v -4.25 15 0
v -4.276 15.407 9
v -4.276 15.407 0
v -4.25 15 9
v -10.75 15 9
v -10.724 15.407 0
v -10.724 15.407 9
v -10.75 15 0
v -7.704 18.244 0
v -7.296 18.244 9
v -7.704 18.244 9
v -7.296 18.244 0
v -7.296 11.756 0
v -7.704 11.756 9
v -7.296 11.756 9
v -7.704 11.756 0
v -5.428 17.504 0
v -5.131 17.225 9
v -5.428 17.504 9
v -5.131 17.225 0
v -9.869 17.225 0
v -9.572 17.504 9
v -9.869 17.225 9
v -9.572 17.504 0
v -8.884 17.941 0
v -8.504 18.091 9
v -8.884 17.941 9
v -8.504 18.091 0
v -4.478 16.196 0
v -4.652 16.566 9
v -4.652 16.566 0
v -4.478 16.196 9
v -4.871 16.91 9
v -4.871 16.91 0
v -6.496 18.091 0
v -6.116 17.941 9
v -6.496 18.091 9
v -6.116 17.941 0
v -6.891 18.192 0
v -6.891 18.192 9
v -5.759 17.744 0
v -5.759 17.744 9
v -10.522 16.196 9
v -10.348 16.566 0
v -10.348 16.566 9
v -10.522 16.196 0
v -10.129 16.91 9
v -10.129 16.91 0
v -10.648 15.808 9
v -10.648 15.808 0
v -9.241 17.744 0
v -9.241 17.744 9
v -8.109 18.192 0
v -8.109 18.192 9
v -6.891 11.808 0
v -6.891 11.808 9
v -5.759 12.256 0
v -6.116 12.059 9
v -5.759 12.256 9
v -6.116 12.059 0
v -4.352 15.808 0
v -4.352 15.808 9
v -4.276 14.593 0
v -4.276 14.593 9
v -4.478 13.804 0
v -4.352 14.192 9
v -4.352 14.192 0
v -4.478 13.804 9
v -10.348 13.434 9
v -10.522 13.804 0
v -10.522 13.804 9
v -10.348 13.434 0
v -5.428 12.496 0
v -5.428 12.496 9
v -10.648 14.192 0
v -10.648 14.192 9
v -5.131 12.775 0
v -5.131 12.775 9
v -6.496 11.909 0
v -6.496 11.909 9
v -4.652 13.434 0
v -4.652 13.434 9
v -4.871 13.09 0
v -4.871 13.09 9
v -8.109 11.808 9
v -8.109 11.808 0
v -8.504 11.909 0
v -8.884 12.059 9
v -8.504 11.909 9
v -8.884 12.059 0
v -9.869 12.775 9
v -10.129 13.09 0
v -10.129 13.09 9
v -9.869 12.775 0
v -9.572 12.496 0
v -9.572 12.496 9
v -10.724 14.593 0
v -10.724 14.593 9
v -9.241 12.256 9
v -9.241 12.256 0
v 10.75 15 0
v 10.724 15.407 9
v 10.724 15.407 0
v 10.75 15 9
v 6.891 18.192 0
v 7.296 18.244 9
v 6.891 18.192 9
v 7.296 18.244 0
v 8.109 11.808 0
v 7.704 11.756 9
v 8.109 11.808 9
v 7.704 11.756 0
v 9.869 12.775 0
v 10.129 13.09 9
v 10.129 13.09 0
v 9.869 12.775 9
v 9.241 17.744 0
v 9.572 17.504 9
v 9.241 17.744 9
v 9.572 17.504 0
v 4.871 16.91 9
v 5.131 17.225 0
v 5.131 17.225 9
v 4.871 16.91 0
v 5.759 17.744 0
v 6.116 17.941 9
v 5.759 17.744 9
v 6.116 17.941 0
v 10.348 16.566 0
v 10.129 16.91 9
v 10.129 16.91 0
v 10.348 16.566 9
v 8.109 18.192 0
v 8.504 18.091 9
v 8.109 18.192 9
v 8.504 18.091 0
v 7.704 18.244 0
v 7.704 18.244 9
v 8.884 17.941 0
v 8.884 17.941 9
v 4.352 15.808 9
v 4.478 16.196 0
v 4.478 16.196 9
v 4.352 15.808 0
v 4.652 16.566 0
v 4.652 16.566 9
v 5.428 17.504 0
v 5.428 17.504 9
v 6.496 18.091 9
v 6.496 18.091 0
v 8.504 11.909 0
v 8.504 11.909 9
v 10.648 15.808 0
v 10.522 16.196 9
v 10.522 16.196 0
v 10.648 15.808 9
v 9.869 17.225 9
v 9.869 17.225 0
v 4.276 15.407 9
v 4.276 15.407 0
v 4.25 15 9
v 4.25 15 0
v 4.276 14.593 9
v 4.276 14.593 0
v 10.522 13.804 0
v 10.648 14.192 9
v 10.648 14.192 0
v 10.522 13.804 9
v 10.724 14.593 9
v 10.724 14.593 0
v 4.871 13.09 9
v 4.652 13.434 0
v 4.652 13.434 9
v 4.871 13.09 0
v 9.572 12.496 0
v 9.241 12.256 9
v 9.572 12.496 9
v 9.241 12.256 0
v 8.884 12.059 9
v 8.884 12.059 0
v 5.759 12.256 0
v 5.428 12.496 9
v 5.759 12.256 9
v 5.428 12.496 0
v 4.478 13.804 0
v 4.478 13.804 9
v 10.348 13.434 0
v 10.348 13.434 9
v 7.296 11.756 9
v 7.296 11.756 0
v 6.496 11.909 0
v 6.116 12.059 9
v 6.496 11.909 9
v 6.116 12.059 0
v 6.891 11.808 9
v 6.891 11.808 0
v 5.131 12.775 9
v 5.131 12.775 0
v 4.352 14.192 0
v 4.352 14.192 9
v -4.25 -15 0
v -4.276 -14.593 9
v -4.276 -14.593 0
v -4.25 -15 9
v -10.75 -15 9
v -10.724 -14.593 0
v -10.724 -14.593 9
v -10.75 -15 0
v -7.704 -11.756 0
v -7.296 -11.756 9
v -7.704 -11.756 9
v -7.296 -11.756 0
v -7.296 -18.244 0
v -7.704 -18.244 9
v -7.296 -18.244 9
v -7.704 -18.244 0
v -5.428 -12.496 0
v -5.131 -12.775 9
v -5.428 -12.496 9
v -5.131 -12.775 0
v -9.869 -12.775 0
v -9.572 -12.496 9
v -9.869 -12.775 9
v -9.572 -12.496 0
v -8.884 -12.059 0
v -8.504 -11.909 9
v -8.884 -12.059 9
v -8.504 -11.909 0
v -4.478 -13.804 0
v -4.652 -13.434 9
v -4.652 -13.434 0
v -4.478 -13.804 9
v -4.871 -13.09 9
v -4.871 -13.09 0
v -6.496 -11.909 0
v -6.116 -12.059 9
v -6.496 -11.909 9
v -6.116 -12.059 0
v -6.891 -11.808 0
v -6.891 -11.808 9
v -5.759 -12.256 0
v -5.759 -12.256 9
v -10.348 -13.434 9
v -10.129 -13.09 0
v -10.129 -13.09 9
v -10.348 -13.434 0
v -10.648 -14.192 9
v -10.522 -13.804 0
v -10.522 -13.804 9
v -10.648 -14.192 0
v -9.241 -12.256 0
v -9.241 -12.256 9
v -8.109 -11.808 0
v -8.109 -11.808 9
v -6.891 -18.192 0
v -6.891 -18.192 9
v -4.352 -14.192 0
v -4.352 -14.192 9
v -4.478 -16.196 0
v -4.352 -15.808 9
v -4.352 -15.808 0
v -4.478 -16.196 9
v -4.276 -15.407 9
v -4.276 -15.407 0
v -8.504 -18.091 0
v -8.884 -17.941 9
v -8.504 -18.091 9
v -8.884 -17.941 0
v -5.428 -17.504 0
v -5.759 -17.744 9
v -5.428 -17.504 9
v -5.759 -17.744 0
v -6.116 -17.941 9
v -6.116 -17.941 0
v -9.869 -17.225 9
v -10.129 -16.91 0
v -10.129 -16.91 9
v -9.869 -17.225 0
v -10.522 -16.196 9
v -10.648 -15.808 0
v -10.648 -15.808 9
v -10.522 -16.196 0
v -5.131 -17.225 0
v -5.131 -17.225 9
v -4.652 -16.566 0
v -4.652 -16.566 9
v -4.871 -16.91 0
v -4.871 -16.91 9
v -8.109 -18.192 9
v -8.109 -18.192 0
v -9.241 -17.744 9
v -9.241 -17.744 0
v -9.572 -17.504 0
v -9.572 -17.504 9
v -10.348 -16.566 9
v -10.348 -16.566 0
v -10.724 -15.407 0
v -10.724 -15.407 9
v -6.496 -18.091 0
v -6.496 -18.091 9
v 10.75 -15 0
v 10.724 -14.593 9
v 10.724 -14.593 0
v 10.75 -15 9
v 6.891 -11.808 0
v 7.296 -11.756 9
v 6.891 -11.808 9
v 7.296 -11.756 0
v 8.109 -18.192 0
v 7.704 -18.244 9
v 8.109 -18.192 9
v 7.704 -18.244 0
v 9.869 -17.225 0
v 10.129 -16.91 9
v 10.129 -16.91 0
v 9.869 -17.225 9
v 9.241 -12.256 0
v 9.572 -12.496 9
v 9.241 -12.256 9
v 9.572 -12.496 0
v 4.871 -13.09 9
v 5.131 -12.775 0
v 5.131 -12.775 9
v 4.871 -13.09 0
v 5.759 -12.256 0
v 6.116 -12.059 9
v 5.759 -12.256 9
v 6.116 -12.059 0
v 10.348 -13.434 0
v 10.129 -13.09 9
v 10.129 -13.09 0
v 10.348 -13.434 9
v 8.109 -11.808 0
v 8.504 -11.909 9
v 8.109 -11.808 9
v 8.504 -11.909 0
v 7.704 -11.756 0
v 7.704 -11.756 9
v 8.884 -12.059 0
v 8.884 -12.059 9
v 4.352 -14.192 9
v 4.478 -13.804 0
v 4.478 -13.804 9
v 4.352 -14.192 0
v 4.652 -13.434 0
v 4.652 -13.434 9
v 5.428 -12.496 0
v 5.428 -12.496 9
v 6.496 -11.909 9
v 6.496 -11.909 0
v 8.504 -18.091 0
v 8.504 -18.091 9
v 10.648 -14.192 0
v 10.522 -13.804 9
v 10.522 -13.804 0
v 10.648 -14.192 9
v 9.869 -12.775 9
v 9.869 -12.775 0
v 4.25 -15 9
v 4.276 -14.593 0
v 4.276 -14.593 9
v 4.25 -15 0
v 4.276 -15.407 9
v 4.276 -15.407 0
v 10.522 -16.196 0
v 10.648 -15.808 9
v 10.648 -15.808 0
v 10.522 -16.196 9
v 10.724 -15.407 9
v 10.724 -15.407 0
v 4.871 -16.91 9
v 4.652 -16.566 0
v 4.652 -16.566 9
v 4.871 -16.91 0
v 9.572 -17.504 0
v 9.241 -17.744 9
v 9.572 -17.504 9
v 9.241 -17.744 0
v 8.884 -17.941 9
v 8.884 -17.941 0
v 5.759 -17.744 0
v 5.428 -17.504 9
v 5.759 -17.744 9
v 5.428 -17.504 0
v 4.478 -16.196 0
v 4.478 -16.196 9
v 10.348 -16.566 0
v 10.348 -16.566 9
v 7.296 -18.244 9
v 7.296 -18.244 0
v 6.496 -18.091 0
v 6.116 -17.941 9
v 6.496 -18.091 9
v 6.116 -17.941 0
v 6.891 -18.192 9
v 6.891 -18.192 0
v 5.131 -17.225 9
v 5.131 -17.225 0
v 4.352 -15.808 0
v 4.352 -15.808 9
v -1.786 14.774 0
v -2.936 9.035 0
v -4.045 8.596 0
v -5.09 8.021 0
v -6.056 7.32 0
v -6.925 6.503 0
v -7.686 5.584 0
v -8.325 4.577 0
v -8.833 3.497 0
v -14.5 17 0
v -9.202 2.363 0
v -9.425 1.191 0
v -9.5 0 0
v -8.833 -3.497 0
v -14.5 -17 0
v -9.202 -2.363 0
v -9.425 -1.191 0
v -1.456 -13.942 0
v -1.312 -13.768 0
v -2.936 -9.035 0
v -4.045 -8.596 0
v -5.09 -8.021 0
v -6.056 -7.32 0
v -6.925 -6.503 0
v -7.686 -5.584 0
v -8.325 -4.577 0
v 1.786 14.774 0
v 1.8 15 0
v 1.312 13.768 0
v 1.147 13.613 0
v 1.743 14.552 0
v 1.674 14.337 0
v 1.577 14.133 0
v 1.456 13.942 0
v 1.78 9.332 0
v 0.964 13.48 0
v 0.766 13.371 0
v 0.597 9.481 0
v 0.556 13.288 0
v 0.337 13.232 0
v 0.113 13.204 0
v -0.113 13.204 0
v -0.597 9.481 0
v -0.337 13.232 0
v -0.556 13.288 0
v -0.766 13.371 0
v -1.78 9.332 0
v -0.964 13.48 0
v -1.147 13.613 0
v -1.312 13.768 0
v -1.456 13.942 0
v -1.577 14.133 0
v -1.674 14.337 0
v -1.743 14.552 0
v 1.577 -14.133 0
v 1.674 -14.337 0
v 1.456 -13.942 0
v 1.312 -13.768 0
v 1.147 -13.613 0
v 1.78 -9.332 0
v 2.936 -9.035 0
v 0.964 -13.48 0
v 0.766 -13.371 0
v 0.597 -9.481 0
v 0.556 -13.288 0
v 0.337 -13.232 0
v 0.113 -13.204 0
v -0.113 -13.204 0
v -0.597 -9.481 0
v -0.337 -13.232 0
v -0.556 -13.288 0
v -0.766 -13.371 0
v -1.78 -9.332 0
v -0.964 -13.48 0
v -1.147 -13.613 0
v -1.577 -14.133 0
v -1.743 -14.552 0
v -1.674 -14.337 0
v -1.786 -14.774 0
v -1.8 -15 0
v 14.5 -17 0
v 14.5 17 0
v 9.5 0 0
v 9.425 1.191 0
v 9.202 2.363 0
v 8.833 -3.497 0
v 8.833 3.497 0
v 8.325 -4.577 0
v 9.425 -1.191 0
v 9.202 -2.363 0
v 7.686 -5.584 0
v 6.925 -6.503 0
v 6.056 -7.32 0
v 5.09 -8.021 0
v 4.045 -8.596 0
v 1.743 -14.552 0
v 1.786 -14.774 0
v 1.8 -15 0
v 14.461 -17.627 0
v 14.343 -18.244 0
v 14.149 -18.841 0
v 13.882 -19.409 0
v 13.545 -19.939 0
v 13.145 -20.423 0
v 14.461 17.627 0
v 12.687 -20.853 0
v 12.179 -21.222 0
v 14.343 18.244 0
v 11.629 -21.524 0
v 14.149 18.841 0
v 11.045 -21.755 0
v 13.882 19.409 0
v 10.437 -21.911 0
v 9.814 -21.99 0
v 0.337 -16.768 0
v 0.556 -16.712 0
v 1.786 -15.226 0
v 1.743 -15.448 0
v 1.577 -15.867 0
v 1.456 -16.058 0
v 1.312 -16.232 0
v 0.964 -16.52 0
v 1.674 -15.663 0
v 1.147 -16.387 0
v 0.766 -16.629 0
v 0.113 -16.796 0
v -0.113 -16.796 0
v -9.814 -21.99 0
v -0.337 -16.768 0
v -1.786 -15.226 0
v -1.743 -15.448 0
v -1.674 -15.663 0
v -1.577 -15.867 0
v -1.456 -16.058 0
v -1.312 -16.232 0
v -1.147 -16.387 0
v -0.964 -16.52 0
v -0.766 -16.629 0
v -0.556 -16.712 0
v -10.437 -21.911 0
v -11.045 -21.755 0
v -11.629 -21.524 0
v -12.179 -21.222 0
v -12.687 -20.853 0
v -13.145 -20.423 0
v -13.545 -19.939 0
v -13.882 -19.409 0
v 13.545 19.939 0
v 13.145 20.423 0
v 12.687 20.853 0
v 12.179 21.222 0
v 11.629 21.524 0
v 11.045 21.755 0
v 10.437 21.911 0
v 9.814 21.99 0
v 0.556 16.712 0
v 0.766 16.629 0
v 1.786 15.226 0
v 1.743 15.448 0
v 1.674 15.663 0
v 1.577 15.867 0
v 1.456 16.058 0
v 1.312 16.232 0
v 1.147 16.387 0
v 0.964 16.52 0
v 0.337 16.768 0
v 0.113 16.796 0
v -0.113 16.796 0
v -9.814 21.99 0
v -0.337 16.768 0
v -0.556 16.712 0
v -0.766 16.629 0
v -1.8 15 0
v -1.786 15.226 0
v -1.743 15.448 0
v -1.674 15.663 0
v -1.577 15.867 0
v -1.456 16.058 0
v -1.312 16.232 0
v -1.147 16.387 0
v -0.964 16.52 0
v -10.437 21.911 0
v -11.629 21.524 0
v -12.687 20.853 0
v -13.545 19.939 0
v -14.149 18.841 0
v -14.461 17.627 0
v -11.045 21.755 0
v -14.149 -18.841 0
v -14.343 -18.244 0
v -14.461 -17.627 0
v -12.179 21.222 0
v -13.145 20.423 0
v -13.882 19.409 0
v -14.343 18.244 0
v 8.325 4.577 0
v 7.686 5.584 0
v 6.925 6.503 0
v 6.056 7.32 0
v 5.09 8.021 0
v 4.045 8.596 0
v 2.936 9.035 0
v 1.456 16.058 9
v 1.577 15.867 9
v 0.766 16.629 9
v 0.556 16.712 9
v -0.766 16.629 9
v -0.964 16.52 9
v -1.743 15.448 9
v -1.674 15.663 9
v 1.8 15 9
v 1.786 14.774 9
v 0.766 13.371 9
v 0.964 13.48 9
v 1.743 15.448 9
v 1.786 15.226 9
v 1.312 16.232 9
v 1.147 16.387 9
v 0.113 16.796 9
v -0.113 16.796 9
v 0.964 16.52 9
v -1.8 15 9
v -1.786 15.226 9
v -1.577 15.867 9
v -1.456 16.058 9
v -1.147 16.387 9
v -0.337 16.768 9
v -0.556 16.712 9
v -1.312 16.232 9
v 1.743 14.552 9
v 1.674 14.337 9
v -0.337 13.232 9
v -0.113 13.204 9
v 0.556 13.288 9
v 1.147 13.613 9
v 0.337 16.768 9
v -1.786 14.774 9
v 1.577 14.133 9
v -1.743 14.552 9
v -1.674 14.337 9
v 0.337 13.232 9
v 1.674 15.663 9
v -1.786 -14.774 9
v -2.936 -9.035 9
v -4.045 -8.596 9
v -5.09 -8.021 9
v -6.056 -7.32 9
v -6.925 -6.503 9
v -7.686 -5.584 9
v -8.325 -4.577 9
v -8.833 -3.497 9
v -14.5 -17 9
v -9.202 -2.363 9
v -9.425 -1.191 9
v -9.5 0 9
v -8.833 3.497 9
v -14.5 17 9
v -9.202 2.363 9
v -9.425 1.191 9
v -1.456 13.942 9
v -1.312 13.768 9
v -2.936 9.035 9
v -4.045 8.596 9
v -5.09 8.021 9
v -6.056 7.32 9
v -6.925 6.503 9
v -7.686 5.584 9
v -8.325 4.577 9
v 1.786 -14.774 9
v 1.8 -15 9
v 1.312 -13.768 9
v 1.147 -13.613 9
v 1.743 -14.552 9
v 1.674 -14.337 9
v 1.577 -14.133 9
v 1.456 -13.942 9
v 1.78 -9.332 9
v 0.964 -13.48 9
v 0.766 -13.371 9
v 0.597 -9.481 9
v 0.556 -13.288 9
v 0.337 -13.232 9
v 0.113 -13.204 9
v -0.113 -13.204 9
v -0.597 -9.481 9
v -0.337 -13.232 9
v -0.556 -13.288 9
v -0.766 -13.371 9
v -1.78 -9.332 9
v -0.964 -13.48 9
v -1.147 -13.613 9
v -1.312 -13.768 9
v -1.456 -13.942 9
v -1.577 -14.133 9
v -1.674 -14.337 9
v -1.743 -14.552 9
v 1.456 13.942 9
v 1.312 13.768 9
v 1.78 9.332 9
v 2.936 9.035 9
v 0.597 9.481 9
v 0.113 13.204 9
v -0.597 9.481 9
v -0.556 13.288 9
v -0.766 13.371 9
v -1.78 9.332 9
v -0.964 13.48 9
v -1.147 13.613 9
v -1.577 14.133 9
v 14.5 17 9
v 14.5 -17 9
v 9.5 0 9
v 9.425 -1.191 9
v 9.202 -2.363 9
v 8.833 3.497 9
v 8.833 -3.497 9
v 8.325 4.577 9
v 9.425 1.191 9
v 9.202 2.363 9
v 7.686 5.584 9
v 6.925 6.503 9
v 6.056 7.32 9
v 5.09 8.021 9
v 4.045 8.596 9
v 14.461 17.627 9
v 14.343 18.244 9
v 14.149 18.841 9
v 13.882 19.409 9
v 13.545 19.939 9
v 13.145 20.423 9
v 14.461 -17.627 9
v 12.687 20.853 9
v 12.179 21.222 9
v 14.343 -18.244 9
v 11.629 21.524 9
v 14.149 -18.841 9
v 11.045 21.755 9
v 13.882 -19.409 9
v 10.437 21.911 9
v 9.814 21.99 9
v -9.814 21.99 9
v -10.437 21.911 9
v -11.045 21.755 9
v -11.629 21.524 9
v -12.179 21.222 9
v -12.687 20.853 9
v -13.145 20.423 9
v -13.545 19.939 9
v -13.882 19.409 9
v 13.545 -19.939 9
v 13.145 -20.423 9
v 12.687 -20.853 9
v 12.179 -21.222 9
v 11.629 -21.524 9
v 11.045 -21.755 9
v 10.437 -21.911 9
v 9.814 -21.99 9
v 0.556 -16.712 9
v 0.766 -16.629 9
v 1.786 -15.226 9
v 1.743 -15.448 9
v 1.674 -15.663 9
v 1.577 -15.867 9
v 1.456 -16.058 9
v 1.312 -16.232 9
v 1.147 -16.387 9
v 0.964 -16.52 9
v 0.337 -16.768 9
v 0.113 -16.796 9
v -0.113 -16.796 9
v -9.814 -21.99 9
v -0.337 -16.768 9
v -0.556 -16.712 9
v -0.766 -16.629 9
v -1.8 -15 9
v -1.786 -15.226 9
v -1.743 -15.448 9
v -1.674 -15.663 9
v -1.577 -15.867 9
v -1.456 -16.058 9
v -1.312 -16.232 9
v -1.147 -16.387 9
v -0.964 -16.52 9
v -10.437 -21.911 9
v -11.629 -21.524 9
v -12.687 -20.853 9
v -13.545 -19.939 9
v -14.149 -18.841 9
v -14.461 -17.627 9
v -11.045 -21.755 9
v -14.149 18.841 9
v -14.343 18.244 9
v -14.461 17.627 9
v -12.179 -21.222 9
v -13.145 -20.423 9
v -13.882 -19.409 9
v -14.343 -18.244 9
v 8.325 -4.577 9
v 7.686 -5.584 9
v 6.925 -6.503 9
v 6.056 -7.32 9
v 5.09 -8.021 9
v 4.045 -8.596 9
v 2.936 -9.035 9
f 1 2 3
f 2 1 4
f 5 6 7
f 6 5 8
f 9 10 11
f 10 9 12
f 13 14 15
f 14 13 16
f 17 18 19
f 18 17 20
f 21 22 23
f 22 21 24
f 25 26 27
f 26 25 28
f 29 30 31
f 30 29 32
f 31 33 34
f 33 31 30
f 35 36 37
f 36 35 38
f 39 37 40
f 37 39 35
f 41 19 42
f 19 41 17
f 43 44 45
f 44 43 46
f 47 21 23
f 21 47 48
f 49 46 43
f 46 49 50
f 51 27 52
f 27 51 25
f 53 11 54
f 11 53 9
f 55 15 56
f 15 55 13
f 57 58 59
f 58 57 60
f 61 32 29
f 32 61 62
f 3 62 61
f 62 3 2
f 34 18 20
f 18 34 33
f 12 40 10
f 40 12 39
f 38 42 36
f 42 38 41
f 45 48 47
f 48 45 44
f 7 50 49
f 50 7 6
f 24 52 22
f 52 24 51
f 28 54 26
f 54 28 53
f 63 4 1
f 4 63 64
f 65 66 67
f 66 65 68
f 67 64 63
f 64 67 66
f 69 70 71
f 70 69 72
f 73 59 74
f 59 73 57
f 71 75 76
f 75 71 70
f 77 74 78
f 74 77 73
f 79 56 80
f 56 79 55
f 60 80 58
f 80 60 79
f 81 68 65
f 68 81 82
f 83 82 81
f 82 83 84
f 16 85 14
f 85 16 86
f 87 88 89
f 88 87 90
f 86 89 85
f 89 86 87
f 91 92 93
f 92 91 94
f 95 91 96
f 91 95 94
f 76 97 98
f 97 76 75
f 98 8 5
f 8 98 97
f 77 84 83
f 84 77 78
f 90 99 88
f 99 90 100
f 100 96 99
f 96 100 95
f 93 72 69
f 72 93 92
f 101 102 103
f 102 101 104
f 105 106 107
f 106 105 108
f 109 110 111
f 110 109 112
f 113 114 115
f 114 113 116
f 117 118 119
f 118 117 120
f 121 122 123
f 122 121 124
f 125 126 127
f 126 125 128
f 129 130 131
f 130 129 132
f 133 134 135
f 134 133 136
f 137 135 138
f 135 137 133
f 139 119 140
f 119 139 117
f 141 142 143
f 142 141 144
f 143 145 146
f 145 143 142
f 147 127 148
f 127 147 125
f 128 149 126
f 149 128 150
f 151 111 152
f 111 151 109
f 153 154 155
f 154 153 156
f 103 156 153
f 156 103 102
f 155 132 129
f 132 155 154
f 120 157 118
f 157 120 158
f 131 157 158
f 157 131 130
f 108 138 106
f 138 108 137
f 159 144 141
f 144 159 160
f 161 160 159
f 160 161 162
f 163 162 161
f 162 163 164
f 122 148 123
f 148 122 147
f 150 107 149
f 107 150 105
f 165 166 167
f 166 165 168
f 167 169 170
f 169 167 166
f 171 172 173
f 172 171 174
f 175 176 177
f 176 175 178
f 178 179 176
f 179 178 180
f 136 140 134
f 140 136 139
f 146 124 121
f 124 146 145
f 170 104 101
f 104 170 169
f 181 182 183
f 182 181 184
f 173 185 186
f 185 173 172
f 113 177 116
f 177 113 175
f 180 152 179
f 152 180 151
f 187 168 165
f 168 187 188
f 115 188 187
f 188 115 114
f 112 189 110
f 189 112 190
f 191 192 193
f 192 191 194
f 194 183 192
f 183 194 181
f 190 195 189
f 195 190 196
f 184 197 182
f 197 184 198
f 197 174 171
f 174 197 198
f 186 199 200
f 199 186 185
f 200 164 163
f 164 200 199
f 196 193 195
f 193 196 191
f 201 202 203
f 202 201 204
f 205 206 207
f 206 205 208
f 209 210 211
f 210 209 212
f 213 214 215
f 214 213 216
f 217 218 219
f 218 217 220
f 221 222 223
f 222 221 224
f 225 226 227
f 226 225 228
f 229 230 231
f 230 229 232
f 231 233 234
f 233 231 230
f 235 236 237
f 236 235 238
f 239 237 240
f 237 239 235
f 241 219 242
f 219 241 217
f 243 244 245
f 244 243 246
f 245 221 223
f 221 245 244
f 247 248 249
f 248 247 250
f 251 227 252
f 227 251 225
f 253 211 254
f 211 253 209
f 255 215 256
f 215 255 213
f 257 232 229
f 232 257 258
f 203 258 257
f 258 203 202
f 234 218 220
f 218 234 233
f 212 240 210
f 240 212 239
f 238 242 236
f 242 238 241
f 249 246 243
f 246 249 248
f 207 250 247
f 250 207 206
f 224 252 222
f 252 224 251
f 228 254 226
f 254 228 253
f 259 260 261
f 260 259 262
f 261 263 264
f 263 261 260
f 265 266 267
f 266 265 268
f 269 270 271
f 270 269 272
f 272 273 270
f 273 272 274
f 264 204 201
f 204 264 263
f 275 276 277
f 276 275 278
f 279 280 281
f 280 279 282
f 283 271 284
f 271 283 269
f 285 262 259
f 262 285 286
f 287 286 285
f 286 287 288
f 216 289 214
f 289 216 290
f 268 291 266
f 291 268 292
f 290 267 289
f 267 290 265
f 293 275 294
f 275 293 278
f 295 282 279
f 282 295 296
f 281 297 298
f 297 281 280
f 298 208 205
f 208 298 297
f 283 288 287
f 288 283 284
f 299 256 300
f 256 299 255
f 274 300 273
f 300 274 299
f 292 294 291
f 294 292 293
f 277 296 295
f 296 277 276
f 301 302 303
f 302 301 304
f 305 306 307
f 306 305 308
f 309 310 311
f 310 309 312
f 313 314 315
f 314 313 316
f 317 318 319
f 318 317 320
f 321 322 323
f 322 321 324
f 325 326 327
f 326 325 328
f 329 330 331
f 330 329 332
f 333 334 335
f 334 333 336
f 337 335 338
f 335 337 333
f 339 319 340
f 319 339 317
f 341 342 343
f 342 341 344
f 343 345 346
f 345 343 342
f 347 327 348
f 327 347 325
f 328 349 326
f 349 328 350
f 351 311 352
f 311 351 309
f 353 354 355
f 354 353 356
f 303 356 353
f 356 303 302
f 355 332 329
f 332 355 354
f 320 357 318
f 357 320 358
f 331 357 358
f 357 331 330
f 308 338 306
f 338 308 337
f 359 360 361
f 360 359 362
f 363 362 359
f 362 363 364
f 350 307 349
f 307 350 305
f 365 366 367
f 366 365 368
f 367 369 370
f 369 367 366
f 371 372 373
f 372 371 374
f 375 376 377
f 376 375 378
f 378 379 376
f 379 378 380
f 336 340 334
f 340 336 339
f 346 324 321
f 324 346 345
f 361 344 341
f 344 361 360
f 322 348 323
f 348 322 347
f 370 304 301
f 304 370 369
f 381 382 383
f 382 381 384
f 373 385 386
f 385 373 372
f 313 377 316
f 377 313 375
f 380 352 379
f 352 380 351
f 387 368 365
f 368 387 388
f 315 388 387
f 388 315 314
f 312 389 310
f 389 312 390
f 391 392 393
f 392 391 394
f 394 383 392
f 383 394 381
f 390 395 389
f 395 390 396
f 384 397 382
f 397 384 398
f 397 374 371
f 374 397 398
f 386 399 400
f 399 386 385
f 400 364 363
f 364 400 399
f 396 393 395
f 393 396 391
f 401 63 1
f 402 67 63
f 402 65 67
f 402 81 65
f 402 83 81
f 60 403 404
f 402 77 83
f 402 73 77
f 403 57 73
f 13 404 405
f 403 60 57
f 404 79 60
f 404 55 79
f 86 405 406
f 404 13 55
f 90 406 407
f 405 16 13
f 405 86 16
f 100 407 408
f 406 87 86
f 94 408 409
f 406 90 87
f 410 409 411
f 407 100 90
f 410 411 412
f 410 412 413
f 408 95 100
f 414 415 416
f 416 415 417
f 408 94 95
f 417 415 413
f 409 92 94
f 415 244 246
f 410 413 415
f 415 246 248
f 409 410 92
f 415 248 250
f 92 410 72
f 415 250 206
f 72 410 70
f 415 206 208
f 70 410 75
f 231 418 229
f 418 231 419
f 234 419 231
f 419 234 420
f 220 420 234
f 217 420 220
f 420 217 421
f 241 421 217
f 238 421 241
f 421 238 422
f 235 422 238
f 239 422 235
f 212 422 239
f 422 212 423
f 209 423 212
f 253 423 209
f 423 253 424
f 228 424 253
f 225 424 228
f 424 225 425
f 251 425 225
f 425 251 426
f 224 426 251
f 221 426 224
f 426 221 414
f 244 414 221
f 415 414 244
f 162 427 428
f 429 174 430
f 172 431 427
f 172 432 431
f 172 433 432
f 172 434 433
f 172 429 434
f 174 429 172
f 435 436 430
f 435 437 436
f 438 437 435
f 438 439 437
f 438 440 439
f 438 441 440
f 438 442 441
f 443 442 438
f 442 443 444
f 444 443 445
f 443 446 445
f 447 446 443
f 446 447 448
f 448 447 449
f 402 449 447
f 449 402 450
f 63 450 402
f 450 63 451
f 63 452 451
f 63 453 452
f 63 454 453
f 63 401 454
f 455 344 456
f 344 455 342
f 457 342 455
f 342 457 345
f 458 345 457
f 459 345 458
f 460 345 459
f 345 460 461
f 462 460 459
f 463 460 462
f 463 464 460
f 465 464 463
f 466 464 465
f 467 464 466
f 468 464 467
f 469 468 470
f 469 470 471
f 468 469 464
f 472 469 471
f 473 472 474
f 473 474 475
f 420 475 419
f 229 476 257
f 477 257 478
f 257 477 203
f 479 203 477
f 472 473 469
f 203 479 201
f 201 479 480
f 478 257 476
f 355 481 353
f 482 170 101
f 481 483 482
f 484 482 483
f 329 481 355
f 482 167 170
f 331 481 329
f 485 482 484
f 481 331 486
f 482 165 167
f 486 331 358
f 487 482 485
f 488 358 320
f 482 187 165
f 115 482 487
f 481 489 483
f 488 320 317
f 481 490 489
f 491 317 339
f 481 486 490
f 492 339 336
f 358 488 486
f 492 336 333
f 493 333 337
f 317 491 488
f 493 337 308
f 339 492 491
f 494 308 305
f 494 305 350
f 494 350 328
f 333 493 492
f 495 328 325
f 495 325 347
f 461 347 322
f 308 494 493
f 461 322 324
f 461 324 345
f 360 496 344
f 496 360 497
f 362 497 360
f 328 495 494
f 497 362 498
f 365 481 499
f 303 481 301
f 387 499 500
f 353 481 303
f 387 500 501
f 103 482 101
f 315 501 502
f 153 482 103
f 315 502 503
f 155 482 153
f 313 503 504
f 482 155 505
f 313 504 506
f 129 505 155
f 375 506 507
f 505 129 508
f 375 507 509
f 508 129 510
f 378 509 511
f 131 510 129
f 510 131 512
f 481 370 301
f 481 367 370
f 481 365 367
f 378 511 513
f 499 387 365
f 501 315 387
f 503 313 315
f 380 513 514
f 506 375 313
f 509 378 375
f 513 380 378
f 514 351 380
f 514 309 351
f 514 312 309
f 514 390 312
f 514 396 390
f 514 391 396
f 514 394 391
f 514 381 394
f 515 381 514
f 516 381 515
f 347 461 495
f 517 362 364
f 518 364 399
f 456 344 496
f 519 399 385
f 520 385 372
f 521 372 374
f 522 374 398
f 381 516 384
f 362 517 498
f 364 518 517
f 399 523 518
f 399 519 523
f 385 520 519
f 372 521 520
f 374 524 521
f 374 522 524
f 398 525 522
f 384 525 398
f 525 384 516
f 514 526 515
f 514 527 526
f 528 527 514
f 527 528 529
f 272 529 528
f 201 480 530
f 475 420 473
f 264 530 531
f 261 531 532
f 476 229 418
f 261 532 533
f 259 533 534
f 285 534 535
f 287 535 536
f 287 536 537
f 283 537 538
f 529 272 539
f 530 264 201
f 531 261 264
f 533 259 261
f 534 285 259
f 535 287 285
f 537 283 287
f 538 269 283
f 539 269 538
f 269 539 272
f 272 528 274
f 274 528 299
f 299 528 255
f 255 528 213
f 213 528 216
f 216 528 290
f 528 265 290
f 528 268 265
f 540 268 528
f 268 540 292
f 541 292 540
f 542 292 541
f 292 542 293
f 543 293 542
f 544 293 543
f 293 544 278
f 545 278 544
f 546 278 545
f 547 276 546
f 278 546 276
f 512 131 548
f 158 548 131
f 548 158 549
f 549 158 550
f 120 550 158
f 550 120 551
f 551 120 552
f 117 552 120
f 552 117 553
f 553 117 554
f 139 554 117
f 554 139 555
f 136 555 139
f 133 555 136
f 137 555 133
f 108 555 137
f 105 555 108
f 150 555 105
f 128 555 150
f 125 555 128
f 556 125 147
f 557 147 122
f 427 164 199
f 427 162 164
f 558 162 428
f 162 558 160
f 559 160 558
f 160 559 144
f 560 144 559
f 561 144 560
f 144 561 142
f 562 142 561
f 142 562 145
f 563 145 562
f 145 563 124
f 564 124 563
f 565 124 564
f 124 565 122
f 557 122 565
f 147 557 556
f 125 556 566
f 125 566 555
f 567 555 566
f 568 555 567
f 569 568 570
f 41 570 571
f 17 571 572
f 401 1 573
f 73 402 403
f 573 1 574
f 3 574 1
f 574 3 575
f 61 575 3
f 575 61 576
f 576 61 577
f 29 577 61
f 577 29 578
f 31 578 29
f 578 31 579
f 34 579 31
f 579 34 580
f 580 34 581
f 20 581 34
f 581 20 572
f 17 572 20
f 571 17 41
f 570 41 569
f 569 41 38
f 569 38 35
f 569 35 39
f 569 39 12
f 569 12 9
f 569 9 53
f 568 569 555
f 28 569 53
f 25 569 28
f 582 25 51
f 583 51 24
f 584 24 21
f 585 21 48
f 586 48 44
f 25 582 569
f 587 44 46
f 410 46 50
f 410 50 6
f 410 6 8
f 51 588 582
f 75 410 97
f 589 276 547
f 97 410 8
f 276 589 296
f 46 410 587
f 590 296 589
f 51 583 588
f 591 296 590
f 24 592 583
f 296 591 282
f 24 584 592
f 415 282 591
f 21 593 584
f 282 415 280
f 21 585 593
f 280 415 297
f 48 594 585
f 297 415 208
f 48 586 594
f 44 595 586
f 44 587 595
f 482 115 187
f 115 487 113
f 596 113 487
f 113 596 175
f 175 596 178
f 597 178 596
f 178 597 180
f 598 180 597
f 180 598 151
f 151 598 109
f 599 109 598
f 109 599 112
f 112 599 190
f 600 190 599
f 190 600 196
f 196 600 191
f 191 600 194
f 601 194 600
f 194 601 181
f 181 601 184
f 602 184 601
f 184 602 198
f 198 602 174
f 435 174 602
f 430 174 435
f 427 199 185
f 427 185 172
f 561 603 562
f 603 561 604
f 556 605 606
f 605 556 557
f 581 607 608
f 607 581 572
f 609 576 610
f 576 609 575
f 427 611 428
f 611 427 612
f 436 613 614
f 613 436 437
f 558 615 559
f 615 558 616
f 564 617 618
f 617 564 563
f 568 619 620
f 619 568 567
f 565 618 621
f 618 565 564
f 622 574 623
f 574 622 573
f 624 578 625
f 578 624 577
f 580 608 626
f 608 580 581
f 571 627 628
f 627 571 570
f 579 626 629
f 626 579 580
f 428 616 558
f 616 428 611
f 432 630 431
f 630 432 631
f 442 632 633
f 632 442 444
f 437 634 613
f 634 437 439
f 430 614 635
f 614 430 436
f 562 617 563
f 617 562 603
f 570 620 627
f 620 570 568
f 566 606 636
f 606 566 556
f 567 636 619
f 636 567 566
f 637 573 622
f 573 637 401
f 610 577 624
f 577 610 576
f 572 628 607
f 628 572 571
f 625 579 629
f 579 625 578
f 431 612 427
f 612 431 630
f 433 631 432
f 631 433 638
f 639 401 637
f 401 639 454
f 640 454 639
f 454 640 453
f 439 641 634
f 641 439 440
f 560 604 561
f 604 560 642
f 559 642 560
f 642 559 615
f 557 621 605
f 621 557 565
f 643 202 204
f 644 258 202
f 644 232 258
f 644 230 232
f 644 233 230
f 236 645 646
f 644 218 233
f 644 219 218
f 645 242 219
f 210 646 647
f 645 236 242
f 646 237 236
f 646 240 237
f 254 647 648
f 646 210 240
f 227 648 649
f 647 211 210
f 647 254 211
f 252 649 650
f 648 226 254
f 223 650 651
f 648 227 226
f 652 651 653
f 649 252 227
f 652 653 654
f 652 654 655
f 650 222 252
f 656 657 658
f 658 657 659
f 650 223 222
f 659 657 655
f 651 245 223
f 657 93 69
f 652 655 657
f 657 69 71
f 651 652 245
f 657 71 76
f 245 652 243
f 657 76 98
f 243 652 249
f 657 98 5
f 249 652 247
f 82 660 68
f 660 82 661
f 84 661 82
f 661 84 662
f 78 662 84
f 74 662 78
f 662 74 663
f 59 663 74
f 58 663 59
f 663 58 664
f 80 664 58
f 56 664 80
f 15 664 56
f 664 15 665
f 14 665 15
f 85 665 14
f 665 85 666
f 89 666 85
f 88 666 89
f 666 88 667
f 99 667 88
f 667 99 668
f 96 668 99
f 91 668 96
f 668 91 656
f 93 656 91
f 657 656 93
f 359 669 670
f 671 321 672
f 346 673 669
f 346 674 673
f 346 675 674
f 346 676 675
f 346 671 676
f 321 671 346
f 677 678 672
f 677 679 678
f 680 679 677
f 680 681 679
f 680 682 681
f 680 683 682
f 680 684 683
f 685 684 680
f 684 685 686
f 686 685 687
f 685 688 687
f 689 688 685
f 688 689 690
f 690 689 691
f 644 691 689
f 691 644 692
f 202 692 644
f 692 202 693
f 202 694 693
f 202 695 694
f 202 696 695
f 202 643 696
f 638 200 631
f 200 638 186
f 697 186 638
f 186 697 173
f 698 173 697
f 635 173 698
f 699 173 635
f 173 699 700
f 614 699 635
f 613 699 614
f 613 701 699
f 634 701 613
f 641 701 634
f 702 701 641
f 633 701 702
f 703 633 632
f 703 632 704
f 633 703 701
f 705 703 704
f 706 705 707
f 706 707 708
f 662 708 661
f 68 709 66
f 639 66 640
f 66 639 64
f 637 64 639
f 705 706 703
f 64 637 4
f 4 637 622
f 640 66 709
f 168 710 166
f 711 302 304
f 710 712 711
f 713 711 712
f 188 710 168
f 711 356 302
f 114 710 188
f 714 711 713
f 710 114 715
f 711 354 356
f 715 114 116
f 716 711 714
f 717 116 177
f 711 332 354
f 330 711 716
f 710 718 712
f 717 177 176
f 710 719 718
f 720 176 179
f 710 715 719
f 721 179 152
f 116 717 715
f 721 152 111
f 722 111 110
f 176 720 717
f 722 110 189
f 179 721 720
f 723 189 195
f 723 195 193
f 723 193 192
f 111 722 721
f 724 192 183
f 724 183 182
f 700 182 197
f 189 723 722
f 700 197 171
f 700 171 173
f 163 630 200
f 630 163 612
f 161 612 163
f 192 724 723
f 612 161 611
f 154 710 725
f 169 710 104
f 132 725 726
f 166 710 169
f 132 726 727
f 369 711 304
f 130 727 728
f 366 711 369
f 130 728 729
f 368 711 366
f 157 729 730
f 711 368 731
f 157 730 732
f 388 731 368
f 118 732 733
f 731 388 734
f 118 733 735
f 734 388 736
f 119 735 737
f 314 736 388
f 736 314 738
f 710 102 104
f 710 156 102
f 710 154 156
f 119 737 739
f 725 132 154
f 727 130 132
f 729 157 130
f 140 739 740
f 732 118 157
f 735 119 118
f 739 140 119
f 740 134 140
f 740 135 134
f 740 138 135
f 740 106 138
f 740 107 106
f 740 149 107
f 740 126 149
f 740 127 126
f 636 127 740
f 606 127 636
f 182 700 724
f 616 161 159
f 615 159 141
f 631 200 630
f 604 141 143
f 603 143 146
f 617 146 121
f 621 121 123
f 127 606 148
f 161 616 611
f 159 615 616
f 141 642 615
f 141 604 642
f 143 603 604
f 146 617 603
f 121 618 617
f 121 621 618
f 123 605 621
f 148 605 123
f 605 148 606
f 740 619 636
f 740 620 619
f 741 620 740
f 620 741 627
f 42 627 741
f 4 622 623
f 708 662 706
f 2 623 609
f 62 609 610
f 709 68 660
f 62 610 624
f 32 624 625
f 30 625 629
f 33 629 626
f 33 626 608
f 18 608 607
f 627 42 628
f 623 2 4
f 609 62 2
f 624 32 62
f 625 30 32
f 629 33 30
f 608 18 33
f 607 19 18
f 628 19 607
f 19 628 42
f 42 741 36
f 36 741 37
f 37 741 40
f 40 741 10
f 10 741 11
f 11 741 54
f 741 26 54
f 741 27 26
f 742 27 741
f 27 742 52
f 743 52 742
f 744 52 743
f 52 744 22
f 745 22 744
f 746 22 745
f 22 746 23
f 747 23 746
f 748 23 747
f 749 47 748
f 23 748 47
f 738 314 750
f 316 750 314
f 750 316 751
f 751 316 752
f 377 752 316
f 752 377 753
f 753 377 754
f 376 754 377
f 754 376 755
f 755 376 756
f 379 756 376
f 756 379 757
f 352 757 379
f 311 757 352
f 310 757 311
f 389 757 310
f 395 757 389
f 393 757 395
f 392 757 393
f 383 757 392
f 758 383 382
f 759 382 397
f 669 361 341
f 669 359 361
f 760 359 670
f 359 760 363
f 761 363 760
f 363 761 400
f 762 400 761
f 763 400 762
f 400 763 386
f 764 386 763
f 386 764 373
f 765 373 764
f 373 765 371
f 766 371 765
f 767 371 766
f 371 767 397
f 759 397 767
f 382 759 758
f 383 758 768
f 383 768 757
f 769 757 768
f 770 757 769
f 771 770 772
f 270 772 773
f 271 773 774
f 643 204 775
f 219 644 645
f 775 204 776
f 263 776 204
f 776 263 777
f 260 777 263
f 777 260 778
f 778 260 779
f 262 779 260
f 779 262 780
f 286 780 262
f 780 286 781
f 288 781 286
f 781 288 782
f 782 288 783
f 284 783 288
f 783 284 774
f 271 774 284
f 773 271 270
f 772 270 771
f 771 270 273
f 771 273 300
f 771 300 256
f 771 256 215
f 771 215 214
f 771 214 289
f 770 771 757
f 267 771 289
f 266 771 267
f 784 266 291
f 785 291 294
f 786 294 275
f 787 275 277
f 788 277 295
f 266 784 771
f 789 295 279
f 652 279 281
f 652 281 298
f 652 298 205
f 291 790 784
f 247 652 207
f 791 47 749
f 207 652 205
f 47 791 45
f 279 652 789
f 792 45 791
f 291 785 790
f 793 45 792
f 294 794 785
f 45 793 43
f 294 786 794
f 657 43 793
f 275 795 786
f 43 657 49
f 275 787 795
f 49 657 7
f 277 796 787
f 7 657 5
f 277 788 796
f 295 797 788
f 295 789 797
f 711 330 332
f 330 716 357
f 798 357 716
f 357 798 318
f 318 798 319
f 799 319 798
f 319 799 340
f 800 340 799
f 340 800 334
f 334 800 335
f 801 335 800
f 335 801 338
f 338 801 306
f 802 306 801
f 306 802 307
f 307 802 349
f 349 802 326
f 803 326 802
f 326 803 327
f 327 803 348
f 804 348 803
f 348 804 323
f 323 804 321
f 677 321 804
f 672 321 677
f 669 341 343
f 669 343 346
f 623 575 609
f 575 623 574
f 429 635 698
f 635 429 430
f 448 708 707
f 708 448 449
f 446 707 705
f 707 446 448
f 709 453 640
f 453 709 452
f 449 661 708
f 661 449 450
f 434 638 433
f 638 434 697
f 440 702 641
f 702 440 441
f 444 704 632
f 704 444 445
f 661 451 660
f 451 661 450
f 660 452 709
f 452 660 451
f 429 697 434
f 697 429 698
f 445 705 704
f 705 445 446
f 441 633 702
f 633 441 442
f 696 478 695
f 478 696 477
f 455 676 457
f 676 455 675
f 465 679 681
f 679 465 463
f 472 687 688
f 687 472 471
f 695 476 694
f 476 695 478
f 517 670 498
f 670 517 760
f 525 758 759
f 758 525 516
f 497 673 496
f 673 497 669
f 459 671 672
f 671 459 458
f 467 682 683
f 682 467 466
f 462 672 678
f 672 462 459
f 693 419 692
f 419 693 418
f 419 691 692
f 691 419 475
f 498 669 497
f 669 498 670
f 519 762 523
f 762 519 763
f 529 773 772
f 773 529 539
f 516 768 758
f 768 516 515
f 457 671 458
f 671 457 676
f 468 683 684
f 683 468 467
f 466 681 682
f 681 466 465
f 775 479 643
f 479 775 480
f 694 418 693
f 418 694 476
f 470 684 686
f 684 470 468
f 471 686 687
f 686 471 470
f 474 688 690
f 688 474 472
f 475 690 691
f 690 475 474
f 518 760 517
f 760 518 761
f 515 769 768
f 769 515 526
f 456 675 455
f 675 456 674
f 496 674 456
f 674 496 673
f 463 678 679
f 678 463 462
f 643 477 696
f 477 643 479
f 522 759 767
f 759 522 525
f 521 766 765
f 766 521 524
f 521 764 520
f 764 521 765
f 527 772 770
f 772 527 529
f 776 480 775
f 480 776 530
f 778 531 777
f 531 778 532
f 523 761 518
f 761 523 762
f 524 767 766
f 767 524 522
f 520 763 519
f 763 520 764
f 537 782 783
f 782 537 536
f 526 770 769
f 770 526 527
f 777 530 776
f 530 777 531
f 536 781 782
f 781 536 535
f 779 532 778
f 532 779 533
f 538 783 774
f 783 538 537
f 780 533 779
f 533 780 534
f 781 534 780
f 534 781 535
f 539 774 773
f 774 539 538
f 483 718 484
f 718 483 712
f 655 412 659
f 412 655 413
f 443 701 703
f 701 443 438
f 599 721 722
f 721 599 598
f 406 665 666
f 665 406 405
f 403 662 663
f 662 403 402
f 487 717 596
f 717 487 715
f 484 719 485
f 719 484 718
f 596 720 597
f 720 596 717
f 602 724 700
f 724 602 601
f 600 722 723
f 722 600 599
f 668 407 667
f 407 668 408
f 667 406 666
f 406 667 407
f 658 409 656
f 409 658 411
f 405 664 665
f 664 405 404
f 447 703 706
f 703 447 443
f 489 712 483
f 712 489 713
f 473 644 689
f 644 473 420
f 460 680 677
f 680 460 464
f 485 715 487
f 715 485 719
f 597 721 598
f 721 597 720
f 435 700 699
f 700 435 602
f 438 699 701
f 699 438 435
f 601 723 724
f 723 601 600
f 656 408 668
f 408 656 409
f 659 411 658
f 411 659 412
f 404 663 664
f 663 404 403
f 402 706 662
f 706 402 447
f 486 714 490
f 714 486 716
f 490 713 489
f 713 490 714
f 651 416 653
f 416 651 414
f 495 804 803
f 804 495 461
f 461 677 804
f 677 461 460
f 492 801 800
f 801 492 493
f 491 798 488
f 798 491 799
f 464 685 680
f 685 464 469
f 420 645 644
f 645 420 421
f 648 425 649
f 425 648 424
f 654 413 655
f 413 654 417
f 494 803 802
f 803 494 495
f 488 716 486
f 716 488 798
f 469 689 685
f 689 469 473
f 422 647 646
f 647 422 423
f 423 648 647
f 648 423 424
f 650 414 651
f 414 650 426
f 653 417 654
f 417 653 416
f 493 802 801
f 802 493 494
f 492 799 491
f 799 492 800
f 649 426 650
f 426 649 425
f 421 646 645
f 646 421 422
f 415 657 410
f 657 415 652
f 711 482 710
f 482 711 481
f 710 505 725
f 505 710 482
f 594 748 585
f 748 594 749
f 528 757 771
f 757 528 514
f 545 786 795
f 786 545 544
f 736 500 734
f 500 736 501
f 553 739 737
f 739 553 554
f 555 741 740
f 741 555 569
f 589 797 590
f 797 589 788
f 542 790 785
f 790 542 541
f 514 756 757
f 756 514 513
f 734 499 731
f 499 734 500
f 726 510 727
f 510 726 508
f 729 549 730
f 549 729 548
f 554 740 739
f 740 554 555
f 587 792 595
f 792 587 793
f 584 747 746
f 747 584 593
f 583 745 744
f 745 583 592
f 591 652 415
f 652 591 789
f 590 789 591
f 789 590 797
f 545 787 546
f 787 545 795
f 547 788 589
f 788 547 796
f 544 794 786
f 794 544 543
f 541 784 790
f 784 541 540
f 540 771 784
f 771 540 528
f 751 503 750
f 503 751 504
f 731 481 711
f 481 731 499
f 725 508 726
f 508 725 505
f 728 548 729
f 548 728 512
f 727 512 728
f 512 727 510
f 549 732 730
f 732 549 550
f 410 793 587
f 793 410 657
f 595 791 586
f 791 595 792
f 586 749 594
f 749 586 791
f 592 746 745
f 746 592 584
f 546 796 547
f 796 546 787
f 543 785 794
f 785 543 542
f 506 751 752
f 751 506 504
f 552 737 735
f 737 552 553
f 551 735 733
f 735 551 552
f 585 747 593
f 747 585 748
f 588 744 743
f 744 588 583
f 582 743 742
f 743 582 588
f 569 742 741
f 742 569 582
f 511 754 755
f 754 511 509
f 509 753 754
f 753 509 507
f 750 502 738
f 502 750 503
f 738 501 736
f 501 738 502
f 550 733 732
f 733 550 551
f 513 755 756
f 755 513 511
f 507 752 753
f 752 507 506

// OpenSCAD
$fn = 50;


difference() {
	union() {
		hull() {
			translate(v = [-9.5000000000, 17.0000000000, 0]) {
				cylinder(h = 9, r = 5);
			}
			translate(v = [9.5000000000, 17.0000000000, 0]) {
				cylinder(h = 9, r = 5);
			}
			translate(v = [-9.5000000000, -17.0000000000, 0]) {
				cylinder(h = 9, r = 5);
			}
			translate(v = [9.5000000000, -17.0000000000, 0]) {
				cylinder(h = 9, r = 5);
			}
		}
	}
	union() {
		#translate(v = [-7.5000000000, 15.0000000000, 0]) {
			cylinder(h = 9, r = 3.2500000000);
		}
		#translate(v = [7.5000000000, 15.0000000000, 0]) {
			cylinder(h = 9, r = 3.2500000000);
		}
		#translate(v = [-7.5000000000, -15.0000000000, 0]) {
			cylinder(h = 9, r = 3.2500000000);
		}
		#translate(v = [7.5000000000, -15.0000000000, 0]) {
			cylinder(h = 9, r = 3.2500000000);
		}
		#translate(v = [-7.5000000000, -15.0000000000, -100.0000000000]) {
			cylinder(h = 200, r = 3.2500000000);
		}
		#translate(v = [-7.5000000000, 15.0000000000, -100.0000000000]) {
			cylinder(h = 200, r = 3.2500000000);
		}
		#translate(v = [7.5000000000, -15.0000000000, -100.0000000000]) {
			cylinder(h = 200, r = 3.2500000000);
		}
		#translate(v = [7.5000000000, 15.0000000000, -100.0000000000]) {
			cylinder(h = 200, r = 3.2500000000);
		}
		#translate(v = [-7.5000000000, 15.0000000000, 0]) {
			cylinder(h = 9, r = 1.8000000000);
		}
		#translate(v = [0.0000000000, 15.0000000000, 0]) {
			cylinder(h = 9, r = 1.8000000000);
		}
		#translate(v = [7.5000000000, 15.0000000000, 0]) {
			cylinder(h = 9, r = 1.8000000000);
		}
		#translate(v = [-7.5000000000, -15.0000000000, 0]) {
			cylinder(h = 9, r = 1.8000000000);
		}
		#translate(v = [0.0000000000, -15.0000000000, 0]) {
			cylinder(h = 9, r = 1.8000000000);
		}
		#translate(v = [7.5000000000, -15.0000000000, 0]) {
			cylinder(h = 9, r = 1.8000000000);
		}
		#translate(v = [-7.5000000000, 15.0000000000, 0]) {
			cylinder(h = 9, r = 1.8000000000);
		}
		#translate(v = [0.0000000000, 15.0000000000, 0]) {
			cylinder(h = 9, r = 1.8000000000);
		}
		#translate(v = [7.5000000000, 15.0000000000, 0]) {
			cylinder(h = 9, r = 1.8000000000);
		}
		#translate(v = [-7.5000000000, -15.0000000000, 0]) {
			cylinder(h = 9, r = 1.8000000000);
		}
		#translate(v = [0.0000000000, -15.0000000000, 0]) {
			cylinder(h = 9, r = 1.8000000000);
		}
		#translate(v = [7.5000000000, -15.0000000000, 0]) {
			cylinder(h = 9, r = 1.8000000000);
		}
		#translate(v = [-7.5000000000, 15.0000000000, 0]) {
			cylinder(h = 9, r = 1.8000000000);
		}
		#translate(v = [0.0000000000, 15.0000000000, 0]) {
			cylinder(h = 9, r = 1.8000000000);
		}
		#translate(v = [7.5000000000, 15.0000000000, 0]) {
			cylinder(h = 9, r = 1.8000000000);
		}
		#translate(v = [-7.5000000000, -15.0000000000, 0]) {
			cylinder(h = 9, r = 1.8000000000);
		}
		#translate(v = [0.0000000000, -15.0000000000, 0]) {
			cylinder(h = 9, r = 1.8000000000);
		}
		#translate(v = [7.5000000000, -15.0000000000, 0]) {
			cylinder(h = 9, r = 1.8000000000);
		}
		#cylinder(h = 9, r = 9.5000000000);
	}
}
